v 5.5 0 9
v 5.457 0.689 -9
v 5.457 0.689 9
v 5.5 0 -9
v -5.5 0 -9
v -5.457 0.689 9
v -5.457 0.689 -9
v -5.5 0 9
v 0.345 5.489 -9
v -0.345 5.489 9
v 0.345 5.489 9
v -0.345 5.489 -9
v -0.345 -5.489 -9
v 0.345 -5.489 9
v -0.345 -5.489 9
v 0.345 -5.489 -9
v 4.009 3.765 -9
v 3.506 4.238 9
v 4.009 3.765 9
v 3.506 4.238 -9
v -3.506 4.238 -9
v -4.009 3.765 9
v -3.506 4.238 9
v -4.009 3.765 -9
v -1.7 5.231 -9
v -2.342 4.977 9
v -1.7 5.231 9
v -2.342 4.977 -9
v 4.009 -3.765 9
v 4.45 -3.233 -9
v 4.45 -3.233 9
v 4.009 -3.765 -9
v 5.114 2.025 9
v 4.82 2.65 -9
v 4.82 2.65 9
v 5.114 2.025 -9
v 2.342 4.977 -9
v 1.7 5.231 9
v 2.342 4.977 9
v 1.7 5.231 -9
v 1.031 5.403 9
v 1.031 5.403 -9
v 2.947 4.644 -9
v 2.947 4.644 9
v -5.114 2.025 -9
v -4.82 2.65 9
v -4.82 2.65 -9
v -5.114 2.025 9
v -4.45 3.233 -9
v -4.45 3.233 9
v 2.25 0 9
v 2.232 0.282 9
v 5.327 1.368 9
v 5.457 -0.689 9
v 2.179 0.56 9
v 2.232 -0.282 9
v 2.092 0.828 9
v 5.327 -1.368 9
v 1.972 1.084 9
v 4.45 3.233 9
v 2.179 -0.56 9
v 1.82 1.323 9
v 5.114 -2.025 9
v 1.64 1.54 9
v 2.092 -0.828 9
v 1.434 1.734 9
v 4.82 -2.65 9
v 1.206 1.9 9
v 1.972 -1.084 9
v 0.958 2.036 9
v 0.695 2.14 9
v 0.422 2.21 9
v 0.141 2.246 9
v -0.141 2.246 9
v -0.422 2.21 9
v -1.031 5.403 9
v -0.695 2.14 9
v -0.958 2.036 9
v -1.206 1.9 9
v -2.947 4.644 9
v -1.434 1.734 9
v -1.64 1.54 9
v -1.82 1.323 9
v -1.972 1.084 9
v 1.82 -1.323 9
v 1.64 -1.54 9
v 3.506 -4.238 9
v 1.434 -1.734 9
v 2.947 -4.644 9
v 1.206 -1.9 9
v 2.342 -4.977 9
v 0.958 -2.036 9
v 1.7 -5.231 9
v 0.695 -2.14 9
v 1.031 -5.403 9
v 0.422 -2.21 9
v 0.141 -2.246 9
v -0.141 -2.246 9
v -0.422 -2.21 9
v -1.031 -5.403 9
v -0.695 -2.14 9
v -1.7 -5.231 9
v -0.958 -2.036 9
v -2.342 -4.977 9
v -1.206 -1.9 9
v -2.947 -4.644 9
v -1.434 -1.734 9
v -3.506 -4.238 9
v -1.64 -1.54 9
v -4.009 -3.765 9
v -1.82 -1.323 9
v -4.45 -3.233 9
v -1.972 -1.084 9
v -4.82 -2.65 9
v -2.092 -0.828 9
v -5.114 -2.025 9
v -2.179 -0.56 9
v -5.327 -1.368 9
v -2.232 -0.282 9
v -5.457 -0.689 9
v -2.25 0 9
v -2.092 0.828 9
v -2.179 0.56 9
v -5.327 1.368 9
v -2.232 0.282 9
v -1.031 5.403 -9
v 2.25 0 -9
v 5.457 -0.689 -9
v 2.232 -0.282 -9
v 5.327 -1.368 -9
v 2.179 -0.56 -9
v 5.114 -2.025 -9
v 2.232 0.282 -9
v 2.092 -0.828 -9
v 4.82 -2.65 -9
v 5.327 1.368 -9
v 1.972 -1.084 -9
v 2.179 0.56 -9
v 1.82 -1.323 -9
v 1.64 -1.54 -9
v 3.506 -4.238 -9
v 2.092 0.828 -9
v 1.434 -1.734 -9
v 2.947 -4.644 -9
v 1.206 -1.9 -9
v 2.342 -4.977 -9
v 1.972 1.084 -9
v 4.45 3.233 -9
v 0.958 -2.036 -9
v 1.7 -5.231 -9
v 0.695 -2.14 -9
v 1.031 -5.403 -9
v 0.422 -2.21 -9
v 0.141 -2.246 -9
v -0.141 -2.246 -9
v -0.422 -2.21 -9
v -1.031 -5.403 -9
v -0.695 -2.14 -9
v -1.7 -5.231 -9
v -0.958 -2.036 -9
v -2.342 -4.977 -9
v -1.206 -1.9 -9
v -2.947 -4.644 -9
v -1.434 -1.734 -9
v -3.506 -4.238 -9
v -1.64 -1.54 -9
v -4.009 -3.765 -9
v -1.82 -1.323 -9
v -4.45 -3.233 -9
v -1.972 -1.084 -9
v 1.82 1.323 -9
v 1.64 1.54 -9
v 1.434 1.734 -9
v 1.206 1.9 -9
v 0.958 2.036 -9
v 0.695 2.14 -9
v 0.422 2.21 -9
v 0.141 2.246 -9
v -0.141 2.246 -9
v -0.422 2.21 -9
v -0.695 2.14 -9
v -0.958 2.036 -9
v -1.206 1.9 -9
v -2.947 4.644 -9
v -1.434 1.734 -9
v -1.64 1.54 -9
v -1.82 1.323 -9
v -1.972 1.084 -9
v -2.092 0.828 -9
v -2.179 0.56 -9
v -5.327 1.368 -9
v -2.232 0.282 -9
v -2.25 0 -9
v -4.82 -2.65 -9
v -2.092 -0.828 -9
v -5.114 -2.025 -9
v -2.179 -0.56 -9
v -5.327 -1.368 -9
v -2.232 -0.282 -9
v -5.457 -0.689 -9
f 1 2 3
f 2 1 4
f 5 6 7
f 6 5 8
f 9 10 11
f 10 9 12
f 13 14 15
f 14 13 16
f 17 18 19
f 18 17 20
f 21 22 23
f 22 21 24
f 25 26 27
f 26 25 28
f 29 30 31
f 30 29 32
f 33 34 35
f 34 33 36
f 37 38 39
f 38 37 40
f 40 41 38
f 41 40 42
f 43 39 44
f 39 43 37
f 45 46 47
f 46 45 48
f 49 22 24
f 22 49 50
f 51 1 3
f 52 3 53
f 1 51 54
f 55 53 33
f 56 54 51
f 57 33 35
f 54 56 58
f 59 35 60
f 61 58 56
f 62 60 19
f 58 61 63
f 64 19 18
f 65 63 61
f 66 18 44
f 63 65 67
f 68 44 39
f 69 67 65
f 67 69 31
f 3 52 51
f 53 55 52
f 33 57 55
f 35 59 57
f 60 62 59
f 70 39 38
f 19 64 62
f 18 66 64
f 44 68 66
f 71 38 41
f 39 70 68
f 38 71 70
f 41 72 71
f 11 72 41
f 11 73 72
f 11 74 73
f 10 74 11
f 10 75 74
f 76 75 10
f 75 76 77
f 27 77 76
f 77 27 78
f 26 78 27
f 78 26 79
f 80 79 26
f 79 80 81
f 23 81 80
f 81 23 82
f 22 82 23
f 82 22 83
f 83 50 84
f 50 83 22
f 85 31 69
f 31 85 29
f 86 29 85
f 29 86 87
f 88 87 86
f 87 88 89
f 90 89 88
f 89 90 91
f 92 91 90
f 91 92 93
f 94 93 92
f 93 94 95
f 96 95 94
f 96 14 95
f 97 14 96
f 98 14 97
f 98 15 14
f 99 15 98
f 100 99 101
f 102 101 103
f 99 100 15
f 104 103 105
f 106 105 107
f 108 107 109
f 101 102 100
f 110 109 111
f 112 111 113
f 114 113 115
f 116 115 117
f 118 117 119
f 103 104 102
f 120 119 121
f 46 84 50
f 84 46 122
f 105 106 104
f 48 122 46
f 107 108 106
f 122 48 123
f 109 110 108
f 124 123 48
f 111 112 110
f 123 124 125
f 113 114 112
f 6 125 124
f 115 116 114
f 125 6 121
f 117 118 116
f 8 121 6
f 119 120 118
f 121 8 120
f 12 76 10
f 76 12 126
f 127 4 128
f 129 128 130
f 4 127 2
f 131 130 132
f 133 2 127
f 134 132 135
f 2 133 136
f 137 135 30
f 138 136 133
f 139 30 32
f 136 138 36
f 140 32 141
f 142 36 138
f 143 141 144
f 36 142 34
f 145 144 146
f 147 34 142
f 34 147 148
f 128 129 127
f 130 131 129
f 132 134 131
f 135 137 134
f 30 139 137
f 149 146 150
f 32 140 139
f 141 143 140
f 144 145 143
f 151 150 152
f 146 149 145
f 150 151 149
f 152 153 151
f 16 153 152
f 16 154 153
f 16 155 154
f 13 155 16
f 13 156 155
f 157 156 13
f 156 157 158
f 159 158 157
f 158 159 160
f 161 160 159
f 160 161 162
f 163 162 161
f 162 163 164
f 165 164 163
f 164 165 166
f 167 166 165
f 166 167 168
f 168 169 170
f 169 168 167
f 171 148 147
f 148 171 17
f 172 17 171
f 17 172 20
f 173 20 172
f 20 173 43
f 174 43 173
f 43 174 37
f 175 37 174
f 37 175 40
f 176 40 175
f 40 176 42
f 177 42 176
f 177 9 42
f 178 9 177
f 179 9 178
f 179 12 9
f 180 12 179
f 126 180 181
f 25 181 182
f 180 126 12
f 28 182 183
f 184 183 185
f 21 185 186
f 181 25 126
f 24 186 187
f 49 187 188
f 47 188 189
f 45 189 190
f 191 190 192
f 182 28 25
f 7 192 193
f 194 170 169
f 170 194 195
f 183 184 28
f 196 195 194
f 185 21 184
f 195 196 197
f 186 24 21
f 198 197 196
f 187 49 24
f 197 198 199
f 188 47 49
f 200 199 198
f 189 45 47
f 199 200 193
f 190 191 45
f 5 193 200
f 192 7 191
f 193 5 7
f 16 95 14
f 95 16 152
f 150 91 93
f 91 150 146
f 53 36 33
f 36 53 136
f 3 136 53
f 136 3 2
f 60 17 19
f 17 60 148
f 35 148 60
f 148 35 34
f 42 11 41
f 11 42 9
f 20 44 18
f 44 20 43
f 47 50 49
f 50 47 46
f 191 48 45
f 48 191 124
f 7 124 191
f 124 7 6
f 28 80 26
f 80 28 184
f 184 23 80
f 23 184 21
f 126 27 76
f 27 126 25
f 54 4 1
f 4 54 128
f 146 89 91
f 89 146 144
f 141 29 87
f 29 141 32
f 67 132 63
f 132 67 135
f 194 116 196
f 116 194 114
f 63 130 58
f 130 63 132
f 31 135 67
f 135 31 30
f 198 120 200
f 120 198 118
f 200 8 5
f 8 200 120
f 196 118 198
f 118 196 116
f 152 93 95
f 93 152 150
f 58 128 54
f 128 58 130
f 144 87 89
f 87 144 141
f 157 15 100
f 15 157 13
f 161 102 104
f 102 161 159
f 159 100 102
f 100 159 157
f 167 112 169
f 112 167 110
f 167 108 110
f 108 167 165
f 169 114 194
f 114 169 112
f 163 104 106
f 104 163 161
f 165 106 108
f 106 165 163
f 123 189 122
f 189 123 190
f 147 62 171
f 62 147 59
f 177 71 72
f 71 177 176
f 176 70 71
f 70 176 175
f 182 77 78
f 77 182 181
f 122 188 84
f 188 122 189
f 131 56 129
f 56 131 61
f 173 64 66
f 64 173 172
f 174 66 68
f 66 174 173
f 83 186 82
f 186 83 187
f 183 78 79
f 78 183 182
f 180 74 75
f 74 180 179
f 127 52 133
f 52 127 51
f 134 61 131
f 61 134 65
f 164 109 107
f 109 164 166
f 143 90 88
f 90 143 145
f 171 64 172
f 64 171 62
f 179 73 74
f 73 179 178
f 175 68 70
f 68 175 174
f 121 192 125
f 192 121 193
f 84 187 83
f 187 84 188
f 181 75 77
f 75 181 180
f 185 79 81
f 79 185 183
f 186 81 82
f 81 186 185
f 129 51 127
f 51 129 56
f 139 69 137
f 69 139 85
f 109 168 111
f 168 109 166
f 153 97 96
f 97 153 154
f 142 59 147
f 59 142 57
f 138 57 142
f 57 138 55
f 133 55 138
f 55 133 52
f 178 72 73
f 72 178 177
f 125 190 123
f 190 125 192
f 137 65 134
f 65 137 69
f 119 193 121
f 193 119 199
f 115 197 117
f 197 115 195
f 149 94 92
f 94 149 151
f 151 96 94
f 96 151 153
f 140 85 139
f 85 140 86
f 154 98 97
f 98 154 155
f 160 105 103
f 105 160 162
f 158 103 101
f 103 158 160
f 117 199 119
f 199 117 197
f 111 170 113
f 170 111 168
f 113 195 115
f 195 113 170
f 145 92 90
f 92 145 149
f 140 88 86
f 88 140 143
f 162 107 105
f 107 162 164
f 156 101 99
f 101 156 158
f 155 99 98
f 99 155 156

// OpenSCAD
$fn = 50;


difference() {
	union() {
		translate(v = [0, 0, -9.0000000000]) {
			cylinder(h = 18, r = 5.5000000000);
		}
	}
	union() {
		translate(v = [0, 0, -100.0000000000]) {
			cylinder(h = 200, r = 2.2500000000);
		}
	}
}
